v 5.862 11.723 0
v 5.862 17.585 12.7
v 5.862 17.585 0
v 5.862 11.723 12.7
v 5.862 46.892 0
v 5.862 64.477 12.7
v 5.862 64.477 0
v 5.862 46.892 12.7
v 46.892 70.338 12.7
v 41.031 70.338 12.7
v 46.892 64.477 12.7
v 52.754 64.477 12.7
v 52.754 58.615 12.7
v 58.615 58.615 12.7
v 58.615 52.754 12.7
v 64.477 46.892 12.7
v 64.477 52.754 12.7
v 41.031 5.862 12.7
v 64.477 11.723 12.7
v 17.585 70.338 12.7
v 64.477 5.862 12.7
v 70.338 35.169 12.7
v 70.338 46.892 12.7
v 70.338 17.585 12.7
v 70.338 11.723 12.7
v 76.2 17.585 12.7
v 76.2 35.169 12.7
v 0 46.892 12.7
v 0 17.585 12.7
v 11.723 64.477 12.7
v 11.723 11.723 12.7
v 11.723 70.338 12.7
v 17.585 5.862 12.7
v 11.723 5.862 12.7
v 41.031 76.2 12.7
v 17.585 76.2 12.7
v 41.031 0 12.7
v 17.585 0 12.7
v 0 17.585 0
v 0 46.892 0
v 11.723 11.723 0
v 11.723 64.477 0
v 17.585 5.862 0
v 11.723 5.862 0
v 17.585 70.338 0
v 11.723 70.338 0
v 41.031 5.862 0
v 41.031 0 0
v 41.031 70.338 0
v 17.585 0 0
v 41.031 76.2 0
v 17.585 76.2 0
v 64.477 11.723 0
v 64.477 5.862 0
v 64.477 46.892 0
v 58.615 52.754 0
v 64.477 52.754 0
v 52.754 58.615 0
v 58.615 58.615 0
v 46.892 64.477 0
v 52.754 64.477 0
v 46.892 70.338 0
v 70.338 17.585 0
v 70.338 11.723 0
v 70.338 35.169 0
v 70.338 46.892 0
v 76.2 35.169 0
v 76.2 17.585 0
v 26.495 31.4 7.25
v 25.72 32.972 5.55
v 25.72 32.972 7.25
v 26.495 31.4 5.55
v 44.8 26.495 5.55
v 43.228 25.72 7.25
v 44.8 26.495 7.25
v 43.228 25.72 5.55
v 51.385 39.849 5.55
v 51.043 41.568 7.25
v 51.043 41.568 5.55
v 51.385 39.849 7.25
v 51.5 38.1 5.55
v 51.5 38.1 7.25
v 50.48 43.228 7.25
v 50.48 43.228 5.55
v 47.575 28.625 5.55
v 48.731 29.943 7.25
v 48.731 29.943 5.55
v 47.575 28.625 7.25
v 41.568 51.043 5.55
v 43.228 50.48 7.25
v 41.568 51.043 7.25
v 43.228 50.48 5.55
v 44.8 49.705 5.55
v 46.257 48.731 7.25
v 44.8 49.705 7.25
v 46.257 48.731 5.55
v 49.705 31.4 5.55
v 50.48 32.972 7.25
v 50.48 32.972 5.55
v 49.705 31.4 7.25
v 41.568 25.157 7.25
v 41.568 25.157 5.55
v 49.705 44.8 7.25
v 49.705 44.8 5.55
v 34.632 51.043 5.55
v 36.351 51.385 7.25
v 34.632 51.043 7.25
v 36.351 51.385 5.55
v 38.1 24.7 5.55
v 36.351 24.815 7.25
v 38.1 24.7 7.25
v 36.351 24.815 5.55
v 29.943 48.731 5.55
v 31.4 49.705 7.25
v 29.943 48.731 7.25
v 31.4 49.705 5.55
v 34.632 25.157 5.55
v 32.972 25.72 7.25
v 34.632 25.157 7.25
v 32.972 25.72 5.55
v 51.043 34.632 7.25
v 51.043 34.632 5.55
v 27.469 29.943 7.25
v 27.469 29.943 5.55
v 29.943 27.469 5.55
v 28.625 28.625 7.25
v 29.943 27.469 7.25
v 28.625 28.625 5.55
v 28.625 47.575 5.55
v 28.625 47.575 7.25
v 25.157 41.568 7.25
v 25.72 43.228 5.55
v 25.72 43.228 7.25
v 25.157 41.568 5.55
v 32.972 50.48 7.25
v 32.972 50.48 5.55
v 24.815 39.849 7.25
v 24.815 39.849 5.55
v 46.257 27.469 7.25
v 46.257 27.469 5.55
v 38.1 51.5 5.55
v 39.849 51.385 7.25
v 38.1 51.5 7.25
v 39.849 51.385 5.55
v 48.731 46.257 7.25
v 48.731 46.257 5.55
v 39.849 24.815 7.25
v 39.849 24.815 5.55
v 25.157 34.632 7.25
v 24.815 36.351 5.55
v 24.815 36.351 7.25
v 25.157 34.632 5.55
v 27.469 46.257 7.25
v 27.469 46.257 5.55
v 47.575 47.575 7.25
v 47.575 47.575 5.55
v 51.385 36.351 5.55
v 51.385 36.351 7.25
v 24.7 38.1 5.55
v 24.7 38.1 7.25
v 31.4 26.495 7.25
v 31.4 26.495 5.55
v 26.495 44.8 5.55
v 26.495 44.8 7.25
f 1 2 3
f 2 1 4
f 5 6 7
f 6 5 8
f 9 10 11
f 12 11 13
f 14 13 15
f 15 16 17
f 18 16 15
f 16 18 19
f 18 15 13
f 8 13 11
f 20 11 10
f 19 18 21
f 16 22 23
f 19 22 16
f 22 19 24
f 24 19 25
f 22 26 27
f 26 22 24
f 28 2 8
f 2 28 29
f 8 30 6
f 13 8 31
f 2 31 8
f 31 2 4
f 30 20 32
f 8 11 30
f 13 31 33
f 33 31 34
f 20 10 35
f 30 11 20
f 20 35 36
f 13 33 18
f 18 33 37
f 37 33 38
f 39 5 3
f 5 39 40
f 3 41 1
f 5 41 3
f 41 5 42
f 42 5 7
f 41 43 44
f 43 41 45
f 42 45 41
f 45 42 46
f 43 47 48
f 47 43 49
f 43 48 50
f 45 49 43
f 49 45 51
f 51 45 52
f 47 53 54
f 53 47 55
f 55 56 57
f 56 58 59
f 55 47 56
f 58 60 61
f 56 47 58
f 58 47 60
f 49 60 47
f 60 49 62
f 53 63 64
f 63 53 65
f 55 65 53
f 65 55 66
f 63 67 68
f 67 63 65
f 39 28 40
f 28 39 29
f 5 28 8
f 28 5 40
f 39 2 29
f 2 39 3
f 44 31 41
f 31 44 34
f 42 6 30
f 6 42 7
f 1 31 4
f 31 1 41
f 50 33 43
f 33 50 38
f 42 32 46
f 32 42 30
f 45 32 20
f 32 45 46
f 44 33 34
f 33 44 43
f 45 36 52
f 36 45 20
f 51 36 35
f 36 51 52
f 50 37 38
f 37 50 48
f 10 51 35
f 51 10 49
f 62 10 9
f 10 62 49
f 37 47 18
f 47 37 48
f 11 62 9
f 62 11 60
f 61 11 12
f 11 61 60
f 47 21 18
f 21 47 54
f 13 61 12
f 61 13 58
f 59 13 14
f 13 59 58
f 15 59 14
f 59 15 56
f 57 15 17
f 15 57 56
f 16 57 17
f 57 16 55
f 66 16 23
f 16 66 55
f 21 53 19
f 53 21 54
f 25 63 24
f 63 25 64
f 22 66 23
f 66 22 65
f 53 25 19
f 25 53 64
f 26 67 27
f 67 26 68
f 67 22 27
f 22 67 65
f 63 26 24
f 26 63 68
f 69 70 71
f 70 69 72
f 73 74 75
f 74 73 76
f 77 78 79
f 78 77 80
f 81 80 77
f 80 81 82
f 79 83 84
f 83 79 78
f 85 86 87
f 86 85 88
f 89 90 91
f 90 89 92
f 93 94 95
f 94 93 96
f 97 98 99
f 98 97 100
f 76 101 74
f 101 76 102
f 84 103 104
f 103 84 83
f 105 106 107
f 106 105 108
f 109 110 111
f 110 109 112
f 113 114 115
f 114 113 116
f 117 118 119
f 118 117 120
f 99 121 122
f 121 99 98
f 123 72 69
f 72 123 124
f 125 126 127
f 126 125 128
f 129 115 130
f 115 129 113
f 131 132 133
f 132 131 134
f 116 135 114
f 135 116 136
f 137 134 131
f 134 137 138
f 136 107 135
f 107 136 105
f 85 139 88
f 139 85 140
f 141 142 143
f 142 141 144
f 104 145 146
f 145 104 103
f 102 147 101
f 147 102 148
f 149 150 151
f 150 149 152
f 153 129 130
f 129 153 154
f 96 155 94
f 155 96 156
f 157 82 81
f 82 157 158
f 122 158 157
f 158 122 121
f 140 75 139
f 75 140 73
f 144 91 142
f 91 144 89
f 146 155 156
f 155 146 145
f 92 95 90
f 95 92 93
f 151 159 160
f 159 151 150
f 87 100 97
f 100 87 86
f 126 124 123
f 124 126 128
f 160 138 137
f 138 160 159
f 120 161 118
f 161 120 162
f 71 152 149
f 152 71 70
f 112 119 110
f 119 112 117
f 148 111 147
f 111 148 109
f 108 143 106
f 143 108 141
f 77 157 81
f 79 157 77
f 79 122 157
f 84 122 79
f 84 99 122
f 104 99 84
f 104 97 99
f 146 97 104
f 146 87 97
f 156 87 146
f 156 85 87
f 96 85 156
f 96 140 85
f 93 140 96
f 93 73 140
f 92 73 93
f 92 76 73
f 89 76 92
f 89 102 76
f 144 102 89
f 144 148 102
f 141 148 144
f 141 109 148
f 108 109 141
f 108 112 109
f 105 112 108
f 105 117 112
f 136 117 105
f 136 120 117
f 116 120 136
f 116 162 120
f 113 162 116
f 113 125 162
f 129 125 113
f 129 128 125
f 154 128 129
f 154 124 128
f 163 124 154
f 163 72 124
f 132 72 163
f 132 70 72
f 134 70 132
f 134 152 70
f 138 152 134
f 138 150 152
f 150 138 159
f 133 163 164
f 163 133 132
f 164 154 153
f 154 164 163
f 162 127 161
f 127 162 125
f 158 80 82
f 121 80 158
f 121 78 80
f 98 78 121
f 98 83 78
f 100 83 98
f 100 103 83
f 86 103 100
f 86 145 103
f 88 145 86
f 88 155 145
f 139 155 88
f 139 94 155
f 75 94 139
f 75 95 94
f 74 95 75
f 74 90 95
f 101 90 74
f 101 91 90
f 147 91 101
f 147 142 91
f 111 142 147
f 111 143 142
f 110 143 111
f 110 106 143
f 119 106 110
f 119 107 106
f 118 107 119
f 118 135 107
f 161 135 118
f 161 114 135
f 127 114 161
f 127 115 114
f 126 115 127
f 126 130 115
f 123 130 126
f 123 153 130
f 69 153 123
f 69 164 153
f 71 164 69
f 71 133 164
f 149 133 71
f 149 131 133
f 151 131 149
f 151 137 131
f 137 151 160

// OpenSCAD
// coal — Minecraft Item Shape 3D Model
// Auto-generated from minecraft/textures/item/coal.png
//
// Open in OpenSCAD → F5 preview → F6 render → F7 export STL

// ============================================================
// PARAMETERS
// ============================================================

GRID_SIZE_IN    = 3.0;           // crafting table slot size
PIXELS          = 13;              // grid divisions (shape-fitted)
PIXEL_MM        = (GRID_SIZE_IN * 25.4) / PIXELS;  // mm per pixel

DEPTH_IN        = 0.5;          // extrusion depth in inches
DEPTH_MM        = DEPTH_IN * 25.4;

// NFC tag (NTAG215 25mm coin)
TAG_DIAMETER    = 26;           // mm — slightly oversized for easy drop-in
TAG_THICKNESS   = 1.2;         // mm
TAG_CLEARANCE   = 0.4;         // mm extra around tag

cavity_d = TAG_DIAMETER + TAG_CLEARANCE * 2;
cavity_h = TAG_THICKNESS + TAG_CLEARANCE;

echo(str("Tag cavity: ", cavity_d, "mm dia × ", cavity_h, "mm deep"));
echo(str("PAUSE AT: ", DEPTH_MM / 2 + cavity_h / 2, "mm to insert tag"));

module tag_cavity() {
    cx = (6.0 + 0.5) * PIXEL_MM;
    cy = (PIXELS - 1 - 6.0 + 0.5) * PIXEL_MM;
    translate([cx, cy, DEPTH_MM / 2 - cavity_h / 2])
        cylinder(d = cavity_d, h = cavity_h + 0.1, $fn = 48);
}

module tag_shelf() {
    cx = (6.0 + 0.5) * PIXEL_MM;
    cy = (PIXELS - 1 - 6.0 + 0.5) * PIXEL_MM;
    translate([cx, cy, DEPTH_MM / 2 - cavity_h / 2 - 1.0])
        cylinder(d = cavity_d + 4, h = 1.0, $fn = 48);
}

echo(str("Pixel size: ", PIXEL_MM, "mm"));
echo(str("Footprint: ", PIXELS * PIXEL_MM, "mm = ", GRID_SIZE_IN, " in"));
echo(str("Depth: ", DEPTH_MM, "mm = ", DEPTH_IN, " in"));

// ============================================================
// PIXEL MAP — 124 opaque pixels
// ============================================================

item_pixels = [
    [0.0,5.0], [0.0,6.0], [0.0,7.0], [0.0,8.0], [0.0,9.0], [1.0,2.0], [1.0,3.0], [1.0,4.0],
    [1.0,5.0], [1.0,6.0], [1.0,7.0], [1.0,8.0], [1.0,9.0], [1.0,10.0], [2.0,1.0], [2.0,2.0],
    [2.0,3.0], [2.0,4.0], [2.0,5.0], [2.0,6.0], [2.0,7.0], [2.0,8.0], [2.0,9.0], [2.0,10.0],
    [2.0,11.0], [3.0,0.0], [3.0,1.0], [3.0,2.0], [3.0,3.0], [3.0,4.0], [3.0,5.0], [3.0,6.0],
    [3.0,7.0], [3.0,8.0], [3.0,9.0], [3.0,10.0], [3.0,11.0], [3.0,12.0], [4.0,0.0], [4.0,1.0],
    [4.0,2.0], [4.0,3.0], [4.0,4.0], [4.0,5.0], [4.0,6.0], [4.0,7.0], [4.0,8.0], [4.0,9.0],
    [4.0,10.0], [4.0,11.0], [4.0,12.0], [5.0,0.0], [5.0,1.0], [5.0,2.0], [5.0,3.0], [5.0,4.0],
    [5.0,5.0], [5.0,6.0], [5.0,7.0], [5.0,8.0], [5.0,9.0], [5.0,10.0], [5.0,11.0], [5.0,12.0],
    [6.0,0.0], [6.0,1.0], [6.0,2.0], [6.0,3.0], [6.0,4.0], [6.0,5.0], [6.0,6.0], [6.0,7.0],
    [6.0,8.0], [6.0,9.0], [6.0,10.0], [6.0,11.0], [6.0,12.0], [7.0,1.0], [7.0,2.0], [7.0,3.0],
    [7.0,4.0], [7.0,5.0], [7.0,6.0], [7.0,7.0], [7.0,8.0], [7.0,9.0], [7.0,10.0], [7.0,11.0],
    [8.0,2.0], [8.0,3.0], [8.0,4.0], [8.0,5.0], [8.0,6.0], [8.0,7.0], [8.0,8.0], [8.0,9.0],
    [8.0,10.0], [8.0,11.0], [9.0,3.0], [9.0,4.0], [9.0,5.0], [9.0,6.0], [9.0,7.0], [9.0,8.0],
    [9.0,9.0], [9.0,10.0], [9.0,11.0], [10.0,4.0], [10.0,5.0], [10.0,6.0], [10.0,7.0], [10.0,8.0],
    [10.0,9.0], [10.0,10.0], [10.0,11.0], [11.0,5.0], [11.0,6.0], [11.0,7.0], [11.0,8.0], [11.0,9.0],
    [11.0,10.0], [12.0,7.0], [12.0,8.0], [12.0,9.0]
];

// ============================================================
// MODULES
// ============================================================

module pixel_block(col, row) {
    translate([col * PIXEL_MM, (PIXELS - 1 - row) * PIXEL_MM, 0])
        cube([PIXEL_MM, PIXEL_MM, DEPTH_MM]);
}

module item_shape() {
    for (i = [0 : len(item_pixels) - 1])
        pixel_block(item_pixels[i][0], item_pixels[i][1]);
}

module item_final() {
    difference() {
        union() {
            item_shape();
            intersection() {
                item_shape();
                tag_shelf();
            }
        }
        tag_cavity();
    }
}

item_final();

// Cross-section view (uncomment to see tag cavity):
// difference() {
//     item_final();
//     translate([8 * PIXEL_MM + 50, 0, 0])
//         cube([100, 200, 100]);
// }
